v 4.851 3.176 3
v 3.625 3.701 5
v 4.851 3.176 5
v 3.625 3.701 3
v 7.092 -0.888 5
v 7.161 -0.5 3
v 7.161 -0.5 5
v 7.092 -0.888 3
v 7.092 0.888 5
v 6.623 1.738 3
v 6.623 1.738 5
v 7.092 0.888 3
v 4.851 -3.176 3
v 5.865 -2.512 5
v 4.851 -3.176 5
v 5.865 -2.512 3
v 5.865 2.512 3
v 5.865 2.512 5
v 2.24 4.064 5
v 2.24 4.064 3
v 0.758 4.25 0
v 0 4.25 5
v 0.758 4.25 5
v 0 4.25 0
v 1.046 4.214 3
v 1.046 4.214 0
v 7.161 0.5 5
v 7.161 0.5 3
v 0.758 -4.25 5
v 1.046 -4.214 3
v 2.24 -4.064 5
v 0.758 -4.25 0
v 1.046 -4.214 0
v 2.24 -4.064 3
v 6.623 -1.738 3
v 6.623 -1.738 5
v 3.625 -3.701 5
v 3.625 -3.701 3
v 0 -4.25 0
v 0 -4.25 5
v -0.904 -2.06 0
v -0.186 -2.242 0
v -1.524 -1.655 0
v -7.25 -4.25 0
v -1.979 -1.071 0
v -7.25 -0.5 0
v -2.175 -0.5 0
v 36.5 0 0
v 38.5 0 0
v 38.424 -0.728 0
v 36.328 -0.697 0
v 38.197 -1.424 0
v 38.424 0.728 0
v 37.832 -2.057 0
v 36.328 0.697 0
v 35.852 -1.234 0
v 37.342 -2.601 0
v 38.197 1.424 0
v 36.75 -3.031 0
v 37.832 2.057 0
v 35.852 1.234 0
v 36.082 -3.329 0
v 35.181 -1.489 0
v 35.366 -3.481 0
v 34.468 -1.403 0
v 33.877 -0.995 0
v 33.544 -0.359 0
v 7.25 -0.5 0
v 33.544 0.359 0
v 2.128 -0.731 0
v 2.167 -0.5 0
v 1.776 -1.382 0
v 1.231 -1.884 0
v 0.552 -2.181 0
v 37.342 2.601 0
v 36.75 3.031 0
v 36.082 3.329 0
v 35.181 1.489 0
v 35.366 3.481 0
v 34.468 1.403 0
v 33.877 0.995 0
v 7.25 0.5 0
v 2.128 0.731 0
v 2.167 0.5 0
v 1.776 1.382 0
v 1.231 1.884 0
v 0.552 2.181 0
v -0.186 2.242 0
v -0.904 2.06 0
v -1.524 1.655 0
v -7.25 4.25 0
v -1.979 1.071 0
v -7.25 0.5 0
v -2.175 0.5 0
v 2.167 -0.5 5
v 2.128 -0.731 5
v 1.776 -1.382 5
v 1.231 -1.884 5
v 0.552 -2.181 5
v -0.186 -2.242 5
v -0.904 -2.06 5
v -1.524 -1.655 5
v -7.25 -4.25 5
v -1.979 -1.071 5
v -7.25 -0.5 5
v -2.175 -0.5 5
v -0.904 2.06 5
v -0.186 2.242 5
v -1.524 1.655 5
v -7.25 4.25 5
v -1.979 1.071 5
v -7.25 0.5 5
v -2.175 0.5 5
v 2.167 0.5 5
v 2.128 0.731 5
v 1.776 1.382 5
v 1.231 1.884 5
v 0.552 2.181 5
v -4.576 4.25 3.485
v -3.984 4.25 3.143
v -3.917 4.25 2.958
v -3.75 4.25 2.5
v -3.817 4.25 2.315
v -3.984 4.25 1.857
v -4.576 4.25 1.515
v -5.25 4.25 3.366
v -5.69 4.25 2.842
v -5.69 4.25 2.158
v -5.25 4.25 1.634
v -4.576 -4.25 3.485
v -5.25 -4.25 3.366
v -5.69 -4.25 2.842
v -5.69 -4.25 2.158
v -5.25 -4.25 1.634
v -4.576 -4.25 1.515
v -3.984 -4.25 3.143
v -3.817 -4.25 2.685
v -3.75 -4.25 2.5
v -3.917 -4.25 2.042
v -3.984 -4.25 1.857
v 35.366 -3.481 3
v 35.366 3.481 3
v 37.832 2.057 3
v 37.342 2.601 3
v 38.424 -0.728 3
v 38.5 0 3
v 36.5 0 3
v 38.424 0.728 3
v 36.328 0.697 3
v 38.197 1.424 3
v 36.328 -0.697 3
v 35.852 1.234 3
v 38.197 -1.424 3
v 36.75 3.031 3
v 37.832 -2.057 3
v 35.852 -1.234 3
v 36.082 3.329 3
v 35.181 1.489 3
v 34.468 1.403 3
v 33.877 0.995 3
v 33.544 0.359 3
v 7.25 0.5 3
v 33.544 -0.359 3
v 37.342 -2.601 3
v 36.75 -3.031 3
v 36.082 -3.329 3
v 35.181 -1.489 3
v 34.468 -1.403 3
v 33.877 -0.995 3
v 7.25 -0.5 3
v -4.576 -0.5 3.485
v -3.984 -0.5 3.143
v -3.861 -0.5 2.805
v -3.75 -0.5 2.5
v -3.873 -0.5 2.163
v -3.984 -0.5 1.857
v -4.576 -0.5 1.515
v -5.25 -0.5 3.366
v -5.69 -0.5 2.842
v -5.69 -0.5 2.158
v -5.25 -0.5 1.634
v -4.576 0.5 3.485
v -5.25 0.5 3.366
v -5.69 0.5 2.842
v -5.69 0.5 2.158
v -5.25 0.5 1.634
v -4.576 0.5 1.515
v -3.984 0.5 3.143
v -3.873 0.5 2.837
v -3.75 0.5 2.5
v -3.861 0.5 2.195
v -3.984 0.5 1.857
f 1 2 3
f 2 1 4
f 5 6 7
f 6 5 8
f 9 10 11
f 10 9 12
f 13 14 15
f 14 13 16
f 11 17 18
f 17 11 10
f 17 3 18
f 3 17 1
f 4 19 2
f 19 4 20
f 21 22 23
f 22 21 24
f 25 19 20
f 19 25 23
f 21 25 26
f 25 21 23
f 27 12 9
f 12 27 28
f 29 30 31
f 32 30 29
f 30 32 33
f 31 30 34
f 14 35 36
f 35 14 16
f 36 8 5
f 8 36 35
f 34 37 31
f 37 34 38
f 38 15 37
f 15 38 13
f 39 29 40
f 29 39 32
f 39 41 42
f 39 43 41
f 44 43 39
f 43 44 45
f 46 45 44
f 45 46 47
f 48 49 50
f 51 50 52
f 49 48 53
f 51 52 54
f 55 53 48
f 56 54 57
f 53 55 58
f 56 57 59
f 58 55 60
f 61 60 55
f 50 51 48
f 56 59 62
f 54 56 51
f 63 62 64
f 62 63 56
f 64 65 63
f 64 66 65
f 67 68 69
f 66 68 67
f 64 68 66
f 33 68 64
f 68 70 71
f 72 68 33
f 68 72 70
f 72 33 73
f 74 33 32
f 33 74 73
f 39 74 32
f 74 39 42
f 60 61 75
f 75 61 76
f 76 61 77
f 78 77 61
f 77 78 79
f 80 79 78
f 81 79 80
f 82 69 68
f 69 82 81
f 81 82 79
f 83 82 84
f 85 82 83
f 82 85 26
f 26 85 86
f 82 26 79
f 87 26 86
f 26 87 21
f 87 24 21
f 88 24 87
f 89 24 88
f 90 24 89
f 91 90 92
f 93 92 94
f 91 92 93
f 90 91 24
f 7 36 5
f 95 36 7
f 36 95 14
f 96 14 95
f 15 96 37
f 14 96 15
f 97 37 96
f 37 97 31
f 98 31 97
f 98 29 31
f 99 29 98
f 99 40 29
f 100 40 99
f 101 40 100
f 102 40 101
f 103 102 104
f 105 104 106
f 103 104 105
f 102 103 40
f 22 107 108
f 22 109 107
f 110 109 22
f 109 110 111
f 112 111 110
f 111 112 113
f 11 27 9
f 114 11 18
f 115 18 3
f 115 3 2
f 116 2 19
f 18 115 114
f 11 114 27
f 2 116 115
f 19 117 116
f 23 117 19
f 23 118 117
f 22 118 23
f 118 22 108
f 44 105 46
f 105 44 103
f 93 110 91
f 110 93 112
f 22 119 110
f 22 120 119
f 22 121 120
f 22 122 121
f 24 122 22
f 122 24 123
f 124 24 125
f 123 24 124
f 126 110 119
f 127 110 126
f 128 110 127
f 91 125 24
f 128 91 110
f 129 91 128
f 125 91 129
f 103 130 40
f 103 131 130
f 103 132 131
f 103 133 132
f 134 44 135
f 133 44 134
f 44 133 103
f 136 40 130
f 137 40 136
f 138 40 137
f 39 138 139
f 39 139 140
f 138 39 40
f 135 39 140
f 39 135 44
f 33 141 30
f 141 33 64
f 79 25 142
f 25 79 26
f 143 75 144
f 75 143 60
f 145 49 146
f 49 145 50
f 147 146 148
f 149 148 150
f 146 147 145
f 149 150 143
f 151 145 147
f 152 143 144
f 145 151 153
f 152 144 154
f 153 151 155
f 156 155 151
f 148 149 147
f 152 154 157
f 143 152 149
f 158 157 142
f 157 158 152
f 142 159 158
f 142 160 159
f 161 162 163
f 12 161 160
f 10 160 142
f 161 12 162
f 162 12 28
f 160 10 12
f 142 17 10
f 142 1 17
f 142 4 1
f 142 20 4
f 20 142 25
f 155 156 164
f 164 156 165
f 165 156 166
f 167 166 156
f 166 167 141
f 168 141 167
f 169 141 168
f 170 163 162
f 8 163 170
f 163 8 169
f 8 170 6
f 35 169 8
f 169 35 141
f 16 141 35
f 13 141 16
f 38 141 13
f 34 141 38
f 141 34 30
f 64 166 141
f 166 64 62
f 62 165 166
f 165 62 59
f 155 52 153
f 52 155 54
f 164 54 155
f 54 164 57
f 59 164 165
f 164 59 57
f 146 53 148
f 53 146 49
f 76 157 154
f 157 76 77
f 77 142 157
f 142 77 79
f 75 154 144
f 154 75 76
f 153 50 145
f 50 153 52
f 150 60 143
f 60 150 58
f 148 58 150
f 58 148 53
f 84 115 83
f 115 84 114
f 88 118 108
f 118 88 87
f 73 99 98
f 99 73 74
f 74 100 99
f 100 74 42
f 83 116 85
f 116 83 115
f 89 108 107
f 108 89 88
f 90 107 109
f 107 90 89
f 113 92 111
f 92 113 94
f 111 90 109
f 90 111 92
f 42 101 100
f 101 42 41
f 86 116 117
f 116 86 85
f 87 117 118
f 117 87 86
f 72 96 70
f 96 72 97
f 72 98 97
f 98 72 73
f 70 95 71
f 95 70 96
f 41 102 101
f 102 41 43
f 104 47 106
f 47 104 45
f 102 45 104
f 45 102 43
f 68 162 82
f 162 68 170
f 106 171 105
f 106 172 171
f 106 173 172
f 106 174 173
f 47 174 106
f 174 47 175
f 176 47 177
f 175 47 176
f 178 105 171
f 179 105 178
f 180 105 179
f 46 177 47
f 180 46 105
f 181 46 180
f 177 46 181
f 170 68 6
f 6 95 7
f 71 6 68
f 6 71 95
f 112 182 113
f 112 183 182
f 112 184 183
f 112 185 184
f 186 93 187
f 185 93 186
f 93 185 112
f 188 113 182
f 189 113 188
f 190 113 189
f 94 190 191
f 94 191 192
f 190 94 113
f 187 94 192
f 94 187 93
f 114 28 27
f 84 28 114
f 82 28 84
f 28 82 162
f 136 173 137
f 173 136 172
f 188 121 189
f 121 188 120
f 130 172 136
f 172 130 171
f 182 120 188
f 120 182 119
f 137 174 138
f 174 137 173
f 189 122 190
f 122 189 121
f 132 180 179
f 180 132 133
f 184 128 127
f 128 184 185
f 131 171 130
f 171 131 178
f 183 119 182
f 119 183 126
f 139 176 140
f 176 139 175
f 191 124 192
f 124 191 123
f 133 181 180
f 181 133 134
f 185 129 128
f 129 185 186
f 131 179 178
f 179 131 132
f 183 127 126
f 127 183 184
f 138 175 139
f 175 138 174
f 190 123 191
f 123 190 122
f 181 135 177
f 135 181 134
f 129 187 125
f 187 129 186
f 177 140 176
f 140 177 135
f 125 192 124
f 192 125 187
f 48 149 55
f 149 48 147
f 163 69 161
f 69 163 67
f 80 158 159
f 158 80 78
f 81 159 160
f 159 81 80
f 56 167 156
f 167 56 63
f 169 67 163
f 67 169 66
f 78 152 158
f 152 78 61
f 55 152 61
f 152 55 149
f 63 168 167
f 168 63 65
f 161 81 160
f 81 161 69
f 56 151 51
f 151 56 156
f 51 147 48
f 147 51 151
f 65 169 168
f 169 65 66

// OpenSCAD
$fs=.75;

difference(){
	union() {
		union() {
			union() {
				union() {
					resize(newsize = [14.5000000000, 8.5000000000, 0]) {
						cylinder(d = 7.2500000000, h = 5);
					}
					translate(v = [-3.6250000000, 0.0000000000, 2.5000000000]) {
						translate(v = [-3.6250000000, -4.2500000000, -2.5000000000]) {
							cube(size = [7.2500000000, 8.5000000000, 5]);
						}
					}
				}
			}
		}
		hull() {
			cylinder(h = 3, r = 4.2500000000);
			translate(v = [35, 0, 0]) {
				union() {
					cylinder(h = 3, r = 3.5000000000);
				}
			}
		}
		translate(v = [35, 0, 0]) {
			union() {
				cylinder(h = 3, r = 3.5000000000);
			}
		}
	}
	/* Holes Below*/
	union(){
		union(){
			union(){
				cylinder(d = 4.5000000000, h = 5);
			}
			translate(v = [0, 0, 0]) {
				translate(v = [0.0000000000, 0, 2.5000000000]) {
					translate(v = [-7.2500000000, -0.5000000000, -2.5000000000]) {
						cube(size = [14.5000000000, 1, 5]);
					}
				}
			}
		}
		translate(v = [-4.7500000000, 0, 2.5000000000]) {
			rotate(a = [90, 0, 0]) {
				translate(v = [0, 0, -10.0000000000]) {
					cylinder(d = 2, h = 20);
				}
			}
		}
		hull(){
			translate(v = [35, 0, 0]){
				union(){
					cylinder(d = 3, h = 3);
				}
			}
		}
		translate(v = [35, 0, 0]){
			union(){
				cylinder(d = 3, h = 3);
			}
		}
	} /* End Holes */ 
}
/***********************************************
*********      SolidPython code:      **********
************************************************
 
from solid import *
from solid import extensions
from math import *

class Object:
    pass

servo = Object()
servo.shaft = Object()
servo.shaft.d = 4.5
servo.shaft.r = servo.shaft.d/2.
servo.shaft.h = 5
servoShaft = cylinder(d=servo.shaft.d,h=servo.shaft.h)

grip = Object()
grip.rx = servo.shaft.r+5
grip.ry = servo.shaft.r+2

hornGrip = ( cylinder(d=grip.rx, h=servo.shaft.h).resize([grip.rx*2,grip.ry*2,0])
	         + cube([grip.rx,2*grip.ry,servo.shaft.h]).align('x+','z-')
	         - servoShaft.set_hole()
             - cube([2*grip.rx, 1, servo.shaft.h]).align('z-').move(x=0).set_hole()
             - cylinder(d=2,h=20).center().rot(x=90).move(x=-(servo.shaft.r+grip.rx)/2.,z=servo.shaft.h/2.).set_hole()
           )

horn = Object()
horn.height = 3
horn.lenght = 35
horn.end = Object()
horn.end.hole = 3
horn.end.r = horn.end.hole/2.+2
hornEnd = ( cylinder(r=horn.end.r, h = horn.height)
	       - cylinder(d=horn.end.hole, h = horn.height).set_hole()).move(x=horn.lenght)

hornBody = hull(cylinder(r=grip.ry, h=horn.height), hornEnd)

scene = hornGrip + hornBody + hornEnd


scad_render_to_file(scene, 'preview.scad', '$fs=.75;')
 
 
************************************************/
